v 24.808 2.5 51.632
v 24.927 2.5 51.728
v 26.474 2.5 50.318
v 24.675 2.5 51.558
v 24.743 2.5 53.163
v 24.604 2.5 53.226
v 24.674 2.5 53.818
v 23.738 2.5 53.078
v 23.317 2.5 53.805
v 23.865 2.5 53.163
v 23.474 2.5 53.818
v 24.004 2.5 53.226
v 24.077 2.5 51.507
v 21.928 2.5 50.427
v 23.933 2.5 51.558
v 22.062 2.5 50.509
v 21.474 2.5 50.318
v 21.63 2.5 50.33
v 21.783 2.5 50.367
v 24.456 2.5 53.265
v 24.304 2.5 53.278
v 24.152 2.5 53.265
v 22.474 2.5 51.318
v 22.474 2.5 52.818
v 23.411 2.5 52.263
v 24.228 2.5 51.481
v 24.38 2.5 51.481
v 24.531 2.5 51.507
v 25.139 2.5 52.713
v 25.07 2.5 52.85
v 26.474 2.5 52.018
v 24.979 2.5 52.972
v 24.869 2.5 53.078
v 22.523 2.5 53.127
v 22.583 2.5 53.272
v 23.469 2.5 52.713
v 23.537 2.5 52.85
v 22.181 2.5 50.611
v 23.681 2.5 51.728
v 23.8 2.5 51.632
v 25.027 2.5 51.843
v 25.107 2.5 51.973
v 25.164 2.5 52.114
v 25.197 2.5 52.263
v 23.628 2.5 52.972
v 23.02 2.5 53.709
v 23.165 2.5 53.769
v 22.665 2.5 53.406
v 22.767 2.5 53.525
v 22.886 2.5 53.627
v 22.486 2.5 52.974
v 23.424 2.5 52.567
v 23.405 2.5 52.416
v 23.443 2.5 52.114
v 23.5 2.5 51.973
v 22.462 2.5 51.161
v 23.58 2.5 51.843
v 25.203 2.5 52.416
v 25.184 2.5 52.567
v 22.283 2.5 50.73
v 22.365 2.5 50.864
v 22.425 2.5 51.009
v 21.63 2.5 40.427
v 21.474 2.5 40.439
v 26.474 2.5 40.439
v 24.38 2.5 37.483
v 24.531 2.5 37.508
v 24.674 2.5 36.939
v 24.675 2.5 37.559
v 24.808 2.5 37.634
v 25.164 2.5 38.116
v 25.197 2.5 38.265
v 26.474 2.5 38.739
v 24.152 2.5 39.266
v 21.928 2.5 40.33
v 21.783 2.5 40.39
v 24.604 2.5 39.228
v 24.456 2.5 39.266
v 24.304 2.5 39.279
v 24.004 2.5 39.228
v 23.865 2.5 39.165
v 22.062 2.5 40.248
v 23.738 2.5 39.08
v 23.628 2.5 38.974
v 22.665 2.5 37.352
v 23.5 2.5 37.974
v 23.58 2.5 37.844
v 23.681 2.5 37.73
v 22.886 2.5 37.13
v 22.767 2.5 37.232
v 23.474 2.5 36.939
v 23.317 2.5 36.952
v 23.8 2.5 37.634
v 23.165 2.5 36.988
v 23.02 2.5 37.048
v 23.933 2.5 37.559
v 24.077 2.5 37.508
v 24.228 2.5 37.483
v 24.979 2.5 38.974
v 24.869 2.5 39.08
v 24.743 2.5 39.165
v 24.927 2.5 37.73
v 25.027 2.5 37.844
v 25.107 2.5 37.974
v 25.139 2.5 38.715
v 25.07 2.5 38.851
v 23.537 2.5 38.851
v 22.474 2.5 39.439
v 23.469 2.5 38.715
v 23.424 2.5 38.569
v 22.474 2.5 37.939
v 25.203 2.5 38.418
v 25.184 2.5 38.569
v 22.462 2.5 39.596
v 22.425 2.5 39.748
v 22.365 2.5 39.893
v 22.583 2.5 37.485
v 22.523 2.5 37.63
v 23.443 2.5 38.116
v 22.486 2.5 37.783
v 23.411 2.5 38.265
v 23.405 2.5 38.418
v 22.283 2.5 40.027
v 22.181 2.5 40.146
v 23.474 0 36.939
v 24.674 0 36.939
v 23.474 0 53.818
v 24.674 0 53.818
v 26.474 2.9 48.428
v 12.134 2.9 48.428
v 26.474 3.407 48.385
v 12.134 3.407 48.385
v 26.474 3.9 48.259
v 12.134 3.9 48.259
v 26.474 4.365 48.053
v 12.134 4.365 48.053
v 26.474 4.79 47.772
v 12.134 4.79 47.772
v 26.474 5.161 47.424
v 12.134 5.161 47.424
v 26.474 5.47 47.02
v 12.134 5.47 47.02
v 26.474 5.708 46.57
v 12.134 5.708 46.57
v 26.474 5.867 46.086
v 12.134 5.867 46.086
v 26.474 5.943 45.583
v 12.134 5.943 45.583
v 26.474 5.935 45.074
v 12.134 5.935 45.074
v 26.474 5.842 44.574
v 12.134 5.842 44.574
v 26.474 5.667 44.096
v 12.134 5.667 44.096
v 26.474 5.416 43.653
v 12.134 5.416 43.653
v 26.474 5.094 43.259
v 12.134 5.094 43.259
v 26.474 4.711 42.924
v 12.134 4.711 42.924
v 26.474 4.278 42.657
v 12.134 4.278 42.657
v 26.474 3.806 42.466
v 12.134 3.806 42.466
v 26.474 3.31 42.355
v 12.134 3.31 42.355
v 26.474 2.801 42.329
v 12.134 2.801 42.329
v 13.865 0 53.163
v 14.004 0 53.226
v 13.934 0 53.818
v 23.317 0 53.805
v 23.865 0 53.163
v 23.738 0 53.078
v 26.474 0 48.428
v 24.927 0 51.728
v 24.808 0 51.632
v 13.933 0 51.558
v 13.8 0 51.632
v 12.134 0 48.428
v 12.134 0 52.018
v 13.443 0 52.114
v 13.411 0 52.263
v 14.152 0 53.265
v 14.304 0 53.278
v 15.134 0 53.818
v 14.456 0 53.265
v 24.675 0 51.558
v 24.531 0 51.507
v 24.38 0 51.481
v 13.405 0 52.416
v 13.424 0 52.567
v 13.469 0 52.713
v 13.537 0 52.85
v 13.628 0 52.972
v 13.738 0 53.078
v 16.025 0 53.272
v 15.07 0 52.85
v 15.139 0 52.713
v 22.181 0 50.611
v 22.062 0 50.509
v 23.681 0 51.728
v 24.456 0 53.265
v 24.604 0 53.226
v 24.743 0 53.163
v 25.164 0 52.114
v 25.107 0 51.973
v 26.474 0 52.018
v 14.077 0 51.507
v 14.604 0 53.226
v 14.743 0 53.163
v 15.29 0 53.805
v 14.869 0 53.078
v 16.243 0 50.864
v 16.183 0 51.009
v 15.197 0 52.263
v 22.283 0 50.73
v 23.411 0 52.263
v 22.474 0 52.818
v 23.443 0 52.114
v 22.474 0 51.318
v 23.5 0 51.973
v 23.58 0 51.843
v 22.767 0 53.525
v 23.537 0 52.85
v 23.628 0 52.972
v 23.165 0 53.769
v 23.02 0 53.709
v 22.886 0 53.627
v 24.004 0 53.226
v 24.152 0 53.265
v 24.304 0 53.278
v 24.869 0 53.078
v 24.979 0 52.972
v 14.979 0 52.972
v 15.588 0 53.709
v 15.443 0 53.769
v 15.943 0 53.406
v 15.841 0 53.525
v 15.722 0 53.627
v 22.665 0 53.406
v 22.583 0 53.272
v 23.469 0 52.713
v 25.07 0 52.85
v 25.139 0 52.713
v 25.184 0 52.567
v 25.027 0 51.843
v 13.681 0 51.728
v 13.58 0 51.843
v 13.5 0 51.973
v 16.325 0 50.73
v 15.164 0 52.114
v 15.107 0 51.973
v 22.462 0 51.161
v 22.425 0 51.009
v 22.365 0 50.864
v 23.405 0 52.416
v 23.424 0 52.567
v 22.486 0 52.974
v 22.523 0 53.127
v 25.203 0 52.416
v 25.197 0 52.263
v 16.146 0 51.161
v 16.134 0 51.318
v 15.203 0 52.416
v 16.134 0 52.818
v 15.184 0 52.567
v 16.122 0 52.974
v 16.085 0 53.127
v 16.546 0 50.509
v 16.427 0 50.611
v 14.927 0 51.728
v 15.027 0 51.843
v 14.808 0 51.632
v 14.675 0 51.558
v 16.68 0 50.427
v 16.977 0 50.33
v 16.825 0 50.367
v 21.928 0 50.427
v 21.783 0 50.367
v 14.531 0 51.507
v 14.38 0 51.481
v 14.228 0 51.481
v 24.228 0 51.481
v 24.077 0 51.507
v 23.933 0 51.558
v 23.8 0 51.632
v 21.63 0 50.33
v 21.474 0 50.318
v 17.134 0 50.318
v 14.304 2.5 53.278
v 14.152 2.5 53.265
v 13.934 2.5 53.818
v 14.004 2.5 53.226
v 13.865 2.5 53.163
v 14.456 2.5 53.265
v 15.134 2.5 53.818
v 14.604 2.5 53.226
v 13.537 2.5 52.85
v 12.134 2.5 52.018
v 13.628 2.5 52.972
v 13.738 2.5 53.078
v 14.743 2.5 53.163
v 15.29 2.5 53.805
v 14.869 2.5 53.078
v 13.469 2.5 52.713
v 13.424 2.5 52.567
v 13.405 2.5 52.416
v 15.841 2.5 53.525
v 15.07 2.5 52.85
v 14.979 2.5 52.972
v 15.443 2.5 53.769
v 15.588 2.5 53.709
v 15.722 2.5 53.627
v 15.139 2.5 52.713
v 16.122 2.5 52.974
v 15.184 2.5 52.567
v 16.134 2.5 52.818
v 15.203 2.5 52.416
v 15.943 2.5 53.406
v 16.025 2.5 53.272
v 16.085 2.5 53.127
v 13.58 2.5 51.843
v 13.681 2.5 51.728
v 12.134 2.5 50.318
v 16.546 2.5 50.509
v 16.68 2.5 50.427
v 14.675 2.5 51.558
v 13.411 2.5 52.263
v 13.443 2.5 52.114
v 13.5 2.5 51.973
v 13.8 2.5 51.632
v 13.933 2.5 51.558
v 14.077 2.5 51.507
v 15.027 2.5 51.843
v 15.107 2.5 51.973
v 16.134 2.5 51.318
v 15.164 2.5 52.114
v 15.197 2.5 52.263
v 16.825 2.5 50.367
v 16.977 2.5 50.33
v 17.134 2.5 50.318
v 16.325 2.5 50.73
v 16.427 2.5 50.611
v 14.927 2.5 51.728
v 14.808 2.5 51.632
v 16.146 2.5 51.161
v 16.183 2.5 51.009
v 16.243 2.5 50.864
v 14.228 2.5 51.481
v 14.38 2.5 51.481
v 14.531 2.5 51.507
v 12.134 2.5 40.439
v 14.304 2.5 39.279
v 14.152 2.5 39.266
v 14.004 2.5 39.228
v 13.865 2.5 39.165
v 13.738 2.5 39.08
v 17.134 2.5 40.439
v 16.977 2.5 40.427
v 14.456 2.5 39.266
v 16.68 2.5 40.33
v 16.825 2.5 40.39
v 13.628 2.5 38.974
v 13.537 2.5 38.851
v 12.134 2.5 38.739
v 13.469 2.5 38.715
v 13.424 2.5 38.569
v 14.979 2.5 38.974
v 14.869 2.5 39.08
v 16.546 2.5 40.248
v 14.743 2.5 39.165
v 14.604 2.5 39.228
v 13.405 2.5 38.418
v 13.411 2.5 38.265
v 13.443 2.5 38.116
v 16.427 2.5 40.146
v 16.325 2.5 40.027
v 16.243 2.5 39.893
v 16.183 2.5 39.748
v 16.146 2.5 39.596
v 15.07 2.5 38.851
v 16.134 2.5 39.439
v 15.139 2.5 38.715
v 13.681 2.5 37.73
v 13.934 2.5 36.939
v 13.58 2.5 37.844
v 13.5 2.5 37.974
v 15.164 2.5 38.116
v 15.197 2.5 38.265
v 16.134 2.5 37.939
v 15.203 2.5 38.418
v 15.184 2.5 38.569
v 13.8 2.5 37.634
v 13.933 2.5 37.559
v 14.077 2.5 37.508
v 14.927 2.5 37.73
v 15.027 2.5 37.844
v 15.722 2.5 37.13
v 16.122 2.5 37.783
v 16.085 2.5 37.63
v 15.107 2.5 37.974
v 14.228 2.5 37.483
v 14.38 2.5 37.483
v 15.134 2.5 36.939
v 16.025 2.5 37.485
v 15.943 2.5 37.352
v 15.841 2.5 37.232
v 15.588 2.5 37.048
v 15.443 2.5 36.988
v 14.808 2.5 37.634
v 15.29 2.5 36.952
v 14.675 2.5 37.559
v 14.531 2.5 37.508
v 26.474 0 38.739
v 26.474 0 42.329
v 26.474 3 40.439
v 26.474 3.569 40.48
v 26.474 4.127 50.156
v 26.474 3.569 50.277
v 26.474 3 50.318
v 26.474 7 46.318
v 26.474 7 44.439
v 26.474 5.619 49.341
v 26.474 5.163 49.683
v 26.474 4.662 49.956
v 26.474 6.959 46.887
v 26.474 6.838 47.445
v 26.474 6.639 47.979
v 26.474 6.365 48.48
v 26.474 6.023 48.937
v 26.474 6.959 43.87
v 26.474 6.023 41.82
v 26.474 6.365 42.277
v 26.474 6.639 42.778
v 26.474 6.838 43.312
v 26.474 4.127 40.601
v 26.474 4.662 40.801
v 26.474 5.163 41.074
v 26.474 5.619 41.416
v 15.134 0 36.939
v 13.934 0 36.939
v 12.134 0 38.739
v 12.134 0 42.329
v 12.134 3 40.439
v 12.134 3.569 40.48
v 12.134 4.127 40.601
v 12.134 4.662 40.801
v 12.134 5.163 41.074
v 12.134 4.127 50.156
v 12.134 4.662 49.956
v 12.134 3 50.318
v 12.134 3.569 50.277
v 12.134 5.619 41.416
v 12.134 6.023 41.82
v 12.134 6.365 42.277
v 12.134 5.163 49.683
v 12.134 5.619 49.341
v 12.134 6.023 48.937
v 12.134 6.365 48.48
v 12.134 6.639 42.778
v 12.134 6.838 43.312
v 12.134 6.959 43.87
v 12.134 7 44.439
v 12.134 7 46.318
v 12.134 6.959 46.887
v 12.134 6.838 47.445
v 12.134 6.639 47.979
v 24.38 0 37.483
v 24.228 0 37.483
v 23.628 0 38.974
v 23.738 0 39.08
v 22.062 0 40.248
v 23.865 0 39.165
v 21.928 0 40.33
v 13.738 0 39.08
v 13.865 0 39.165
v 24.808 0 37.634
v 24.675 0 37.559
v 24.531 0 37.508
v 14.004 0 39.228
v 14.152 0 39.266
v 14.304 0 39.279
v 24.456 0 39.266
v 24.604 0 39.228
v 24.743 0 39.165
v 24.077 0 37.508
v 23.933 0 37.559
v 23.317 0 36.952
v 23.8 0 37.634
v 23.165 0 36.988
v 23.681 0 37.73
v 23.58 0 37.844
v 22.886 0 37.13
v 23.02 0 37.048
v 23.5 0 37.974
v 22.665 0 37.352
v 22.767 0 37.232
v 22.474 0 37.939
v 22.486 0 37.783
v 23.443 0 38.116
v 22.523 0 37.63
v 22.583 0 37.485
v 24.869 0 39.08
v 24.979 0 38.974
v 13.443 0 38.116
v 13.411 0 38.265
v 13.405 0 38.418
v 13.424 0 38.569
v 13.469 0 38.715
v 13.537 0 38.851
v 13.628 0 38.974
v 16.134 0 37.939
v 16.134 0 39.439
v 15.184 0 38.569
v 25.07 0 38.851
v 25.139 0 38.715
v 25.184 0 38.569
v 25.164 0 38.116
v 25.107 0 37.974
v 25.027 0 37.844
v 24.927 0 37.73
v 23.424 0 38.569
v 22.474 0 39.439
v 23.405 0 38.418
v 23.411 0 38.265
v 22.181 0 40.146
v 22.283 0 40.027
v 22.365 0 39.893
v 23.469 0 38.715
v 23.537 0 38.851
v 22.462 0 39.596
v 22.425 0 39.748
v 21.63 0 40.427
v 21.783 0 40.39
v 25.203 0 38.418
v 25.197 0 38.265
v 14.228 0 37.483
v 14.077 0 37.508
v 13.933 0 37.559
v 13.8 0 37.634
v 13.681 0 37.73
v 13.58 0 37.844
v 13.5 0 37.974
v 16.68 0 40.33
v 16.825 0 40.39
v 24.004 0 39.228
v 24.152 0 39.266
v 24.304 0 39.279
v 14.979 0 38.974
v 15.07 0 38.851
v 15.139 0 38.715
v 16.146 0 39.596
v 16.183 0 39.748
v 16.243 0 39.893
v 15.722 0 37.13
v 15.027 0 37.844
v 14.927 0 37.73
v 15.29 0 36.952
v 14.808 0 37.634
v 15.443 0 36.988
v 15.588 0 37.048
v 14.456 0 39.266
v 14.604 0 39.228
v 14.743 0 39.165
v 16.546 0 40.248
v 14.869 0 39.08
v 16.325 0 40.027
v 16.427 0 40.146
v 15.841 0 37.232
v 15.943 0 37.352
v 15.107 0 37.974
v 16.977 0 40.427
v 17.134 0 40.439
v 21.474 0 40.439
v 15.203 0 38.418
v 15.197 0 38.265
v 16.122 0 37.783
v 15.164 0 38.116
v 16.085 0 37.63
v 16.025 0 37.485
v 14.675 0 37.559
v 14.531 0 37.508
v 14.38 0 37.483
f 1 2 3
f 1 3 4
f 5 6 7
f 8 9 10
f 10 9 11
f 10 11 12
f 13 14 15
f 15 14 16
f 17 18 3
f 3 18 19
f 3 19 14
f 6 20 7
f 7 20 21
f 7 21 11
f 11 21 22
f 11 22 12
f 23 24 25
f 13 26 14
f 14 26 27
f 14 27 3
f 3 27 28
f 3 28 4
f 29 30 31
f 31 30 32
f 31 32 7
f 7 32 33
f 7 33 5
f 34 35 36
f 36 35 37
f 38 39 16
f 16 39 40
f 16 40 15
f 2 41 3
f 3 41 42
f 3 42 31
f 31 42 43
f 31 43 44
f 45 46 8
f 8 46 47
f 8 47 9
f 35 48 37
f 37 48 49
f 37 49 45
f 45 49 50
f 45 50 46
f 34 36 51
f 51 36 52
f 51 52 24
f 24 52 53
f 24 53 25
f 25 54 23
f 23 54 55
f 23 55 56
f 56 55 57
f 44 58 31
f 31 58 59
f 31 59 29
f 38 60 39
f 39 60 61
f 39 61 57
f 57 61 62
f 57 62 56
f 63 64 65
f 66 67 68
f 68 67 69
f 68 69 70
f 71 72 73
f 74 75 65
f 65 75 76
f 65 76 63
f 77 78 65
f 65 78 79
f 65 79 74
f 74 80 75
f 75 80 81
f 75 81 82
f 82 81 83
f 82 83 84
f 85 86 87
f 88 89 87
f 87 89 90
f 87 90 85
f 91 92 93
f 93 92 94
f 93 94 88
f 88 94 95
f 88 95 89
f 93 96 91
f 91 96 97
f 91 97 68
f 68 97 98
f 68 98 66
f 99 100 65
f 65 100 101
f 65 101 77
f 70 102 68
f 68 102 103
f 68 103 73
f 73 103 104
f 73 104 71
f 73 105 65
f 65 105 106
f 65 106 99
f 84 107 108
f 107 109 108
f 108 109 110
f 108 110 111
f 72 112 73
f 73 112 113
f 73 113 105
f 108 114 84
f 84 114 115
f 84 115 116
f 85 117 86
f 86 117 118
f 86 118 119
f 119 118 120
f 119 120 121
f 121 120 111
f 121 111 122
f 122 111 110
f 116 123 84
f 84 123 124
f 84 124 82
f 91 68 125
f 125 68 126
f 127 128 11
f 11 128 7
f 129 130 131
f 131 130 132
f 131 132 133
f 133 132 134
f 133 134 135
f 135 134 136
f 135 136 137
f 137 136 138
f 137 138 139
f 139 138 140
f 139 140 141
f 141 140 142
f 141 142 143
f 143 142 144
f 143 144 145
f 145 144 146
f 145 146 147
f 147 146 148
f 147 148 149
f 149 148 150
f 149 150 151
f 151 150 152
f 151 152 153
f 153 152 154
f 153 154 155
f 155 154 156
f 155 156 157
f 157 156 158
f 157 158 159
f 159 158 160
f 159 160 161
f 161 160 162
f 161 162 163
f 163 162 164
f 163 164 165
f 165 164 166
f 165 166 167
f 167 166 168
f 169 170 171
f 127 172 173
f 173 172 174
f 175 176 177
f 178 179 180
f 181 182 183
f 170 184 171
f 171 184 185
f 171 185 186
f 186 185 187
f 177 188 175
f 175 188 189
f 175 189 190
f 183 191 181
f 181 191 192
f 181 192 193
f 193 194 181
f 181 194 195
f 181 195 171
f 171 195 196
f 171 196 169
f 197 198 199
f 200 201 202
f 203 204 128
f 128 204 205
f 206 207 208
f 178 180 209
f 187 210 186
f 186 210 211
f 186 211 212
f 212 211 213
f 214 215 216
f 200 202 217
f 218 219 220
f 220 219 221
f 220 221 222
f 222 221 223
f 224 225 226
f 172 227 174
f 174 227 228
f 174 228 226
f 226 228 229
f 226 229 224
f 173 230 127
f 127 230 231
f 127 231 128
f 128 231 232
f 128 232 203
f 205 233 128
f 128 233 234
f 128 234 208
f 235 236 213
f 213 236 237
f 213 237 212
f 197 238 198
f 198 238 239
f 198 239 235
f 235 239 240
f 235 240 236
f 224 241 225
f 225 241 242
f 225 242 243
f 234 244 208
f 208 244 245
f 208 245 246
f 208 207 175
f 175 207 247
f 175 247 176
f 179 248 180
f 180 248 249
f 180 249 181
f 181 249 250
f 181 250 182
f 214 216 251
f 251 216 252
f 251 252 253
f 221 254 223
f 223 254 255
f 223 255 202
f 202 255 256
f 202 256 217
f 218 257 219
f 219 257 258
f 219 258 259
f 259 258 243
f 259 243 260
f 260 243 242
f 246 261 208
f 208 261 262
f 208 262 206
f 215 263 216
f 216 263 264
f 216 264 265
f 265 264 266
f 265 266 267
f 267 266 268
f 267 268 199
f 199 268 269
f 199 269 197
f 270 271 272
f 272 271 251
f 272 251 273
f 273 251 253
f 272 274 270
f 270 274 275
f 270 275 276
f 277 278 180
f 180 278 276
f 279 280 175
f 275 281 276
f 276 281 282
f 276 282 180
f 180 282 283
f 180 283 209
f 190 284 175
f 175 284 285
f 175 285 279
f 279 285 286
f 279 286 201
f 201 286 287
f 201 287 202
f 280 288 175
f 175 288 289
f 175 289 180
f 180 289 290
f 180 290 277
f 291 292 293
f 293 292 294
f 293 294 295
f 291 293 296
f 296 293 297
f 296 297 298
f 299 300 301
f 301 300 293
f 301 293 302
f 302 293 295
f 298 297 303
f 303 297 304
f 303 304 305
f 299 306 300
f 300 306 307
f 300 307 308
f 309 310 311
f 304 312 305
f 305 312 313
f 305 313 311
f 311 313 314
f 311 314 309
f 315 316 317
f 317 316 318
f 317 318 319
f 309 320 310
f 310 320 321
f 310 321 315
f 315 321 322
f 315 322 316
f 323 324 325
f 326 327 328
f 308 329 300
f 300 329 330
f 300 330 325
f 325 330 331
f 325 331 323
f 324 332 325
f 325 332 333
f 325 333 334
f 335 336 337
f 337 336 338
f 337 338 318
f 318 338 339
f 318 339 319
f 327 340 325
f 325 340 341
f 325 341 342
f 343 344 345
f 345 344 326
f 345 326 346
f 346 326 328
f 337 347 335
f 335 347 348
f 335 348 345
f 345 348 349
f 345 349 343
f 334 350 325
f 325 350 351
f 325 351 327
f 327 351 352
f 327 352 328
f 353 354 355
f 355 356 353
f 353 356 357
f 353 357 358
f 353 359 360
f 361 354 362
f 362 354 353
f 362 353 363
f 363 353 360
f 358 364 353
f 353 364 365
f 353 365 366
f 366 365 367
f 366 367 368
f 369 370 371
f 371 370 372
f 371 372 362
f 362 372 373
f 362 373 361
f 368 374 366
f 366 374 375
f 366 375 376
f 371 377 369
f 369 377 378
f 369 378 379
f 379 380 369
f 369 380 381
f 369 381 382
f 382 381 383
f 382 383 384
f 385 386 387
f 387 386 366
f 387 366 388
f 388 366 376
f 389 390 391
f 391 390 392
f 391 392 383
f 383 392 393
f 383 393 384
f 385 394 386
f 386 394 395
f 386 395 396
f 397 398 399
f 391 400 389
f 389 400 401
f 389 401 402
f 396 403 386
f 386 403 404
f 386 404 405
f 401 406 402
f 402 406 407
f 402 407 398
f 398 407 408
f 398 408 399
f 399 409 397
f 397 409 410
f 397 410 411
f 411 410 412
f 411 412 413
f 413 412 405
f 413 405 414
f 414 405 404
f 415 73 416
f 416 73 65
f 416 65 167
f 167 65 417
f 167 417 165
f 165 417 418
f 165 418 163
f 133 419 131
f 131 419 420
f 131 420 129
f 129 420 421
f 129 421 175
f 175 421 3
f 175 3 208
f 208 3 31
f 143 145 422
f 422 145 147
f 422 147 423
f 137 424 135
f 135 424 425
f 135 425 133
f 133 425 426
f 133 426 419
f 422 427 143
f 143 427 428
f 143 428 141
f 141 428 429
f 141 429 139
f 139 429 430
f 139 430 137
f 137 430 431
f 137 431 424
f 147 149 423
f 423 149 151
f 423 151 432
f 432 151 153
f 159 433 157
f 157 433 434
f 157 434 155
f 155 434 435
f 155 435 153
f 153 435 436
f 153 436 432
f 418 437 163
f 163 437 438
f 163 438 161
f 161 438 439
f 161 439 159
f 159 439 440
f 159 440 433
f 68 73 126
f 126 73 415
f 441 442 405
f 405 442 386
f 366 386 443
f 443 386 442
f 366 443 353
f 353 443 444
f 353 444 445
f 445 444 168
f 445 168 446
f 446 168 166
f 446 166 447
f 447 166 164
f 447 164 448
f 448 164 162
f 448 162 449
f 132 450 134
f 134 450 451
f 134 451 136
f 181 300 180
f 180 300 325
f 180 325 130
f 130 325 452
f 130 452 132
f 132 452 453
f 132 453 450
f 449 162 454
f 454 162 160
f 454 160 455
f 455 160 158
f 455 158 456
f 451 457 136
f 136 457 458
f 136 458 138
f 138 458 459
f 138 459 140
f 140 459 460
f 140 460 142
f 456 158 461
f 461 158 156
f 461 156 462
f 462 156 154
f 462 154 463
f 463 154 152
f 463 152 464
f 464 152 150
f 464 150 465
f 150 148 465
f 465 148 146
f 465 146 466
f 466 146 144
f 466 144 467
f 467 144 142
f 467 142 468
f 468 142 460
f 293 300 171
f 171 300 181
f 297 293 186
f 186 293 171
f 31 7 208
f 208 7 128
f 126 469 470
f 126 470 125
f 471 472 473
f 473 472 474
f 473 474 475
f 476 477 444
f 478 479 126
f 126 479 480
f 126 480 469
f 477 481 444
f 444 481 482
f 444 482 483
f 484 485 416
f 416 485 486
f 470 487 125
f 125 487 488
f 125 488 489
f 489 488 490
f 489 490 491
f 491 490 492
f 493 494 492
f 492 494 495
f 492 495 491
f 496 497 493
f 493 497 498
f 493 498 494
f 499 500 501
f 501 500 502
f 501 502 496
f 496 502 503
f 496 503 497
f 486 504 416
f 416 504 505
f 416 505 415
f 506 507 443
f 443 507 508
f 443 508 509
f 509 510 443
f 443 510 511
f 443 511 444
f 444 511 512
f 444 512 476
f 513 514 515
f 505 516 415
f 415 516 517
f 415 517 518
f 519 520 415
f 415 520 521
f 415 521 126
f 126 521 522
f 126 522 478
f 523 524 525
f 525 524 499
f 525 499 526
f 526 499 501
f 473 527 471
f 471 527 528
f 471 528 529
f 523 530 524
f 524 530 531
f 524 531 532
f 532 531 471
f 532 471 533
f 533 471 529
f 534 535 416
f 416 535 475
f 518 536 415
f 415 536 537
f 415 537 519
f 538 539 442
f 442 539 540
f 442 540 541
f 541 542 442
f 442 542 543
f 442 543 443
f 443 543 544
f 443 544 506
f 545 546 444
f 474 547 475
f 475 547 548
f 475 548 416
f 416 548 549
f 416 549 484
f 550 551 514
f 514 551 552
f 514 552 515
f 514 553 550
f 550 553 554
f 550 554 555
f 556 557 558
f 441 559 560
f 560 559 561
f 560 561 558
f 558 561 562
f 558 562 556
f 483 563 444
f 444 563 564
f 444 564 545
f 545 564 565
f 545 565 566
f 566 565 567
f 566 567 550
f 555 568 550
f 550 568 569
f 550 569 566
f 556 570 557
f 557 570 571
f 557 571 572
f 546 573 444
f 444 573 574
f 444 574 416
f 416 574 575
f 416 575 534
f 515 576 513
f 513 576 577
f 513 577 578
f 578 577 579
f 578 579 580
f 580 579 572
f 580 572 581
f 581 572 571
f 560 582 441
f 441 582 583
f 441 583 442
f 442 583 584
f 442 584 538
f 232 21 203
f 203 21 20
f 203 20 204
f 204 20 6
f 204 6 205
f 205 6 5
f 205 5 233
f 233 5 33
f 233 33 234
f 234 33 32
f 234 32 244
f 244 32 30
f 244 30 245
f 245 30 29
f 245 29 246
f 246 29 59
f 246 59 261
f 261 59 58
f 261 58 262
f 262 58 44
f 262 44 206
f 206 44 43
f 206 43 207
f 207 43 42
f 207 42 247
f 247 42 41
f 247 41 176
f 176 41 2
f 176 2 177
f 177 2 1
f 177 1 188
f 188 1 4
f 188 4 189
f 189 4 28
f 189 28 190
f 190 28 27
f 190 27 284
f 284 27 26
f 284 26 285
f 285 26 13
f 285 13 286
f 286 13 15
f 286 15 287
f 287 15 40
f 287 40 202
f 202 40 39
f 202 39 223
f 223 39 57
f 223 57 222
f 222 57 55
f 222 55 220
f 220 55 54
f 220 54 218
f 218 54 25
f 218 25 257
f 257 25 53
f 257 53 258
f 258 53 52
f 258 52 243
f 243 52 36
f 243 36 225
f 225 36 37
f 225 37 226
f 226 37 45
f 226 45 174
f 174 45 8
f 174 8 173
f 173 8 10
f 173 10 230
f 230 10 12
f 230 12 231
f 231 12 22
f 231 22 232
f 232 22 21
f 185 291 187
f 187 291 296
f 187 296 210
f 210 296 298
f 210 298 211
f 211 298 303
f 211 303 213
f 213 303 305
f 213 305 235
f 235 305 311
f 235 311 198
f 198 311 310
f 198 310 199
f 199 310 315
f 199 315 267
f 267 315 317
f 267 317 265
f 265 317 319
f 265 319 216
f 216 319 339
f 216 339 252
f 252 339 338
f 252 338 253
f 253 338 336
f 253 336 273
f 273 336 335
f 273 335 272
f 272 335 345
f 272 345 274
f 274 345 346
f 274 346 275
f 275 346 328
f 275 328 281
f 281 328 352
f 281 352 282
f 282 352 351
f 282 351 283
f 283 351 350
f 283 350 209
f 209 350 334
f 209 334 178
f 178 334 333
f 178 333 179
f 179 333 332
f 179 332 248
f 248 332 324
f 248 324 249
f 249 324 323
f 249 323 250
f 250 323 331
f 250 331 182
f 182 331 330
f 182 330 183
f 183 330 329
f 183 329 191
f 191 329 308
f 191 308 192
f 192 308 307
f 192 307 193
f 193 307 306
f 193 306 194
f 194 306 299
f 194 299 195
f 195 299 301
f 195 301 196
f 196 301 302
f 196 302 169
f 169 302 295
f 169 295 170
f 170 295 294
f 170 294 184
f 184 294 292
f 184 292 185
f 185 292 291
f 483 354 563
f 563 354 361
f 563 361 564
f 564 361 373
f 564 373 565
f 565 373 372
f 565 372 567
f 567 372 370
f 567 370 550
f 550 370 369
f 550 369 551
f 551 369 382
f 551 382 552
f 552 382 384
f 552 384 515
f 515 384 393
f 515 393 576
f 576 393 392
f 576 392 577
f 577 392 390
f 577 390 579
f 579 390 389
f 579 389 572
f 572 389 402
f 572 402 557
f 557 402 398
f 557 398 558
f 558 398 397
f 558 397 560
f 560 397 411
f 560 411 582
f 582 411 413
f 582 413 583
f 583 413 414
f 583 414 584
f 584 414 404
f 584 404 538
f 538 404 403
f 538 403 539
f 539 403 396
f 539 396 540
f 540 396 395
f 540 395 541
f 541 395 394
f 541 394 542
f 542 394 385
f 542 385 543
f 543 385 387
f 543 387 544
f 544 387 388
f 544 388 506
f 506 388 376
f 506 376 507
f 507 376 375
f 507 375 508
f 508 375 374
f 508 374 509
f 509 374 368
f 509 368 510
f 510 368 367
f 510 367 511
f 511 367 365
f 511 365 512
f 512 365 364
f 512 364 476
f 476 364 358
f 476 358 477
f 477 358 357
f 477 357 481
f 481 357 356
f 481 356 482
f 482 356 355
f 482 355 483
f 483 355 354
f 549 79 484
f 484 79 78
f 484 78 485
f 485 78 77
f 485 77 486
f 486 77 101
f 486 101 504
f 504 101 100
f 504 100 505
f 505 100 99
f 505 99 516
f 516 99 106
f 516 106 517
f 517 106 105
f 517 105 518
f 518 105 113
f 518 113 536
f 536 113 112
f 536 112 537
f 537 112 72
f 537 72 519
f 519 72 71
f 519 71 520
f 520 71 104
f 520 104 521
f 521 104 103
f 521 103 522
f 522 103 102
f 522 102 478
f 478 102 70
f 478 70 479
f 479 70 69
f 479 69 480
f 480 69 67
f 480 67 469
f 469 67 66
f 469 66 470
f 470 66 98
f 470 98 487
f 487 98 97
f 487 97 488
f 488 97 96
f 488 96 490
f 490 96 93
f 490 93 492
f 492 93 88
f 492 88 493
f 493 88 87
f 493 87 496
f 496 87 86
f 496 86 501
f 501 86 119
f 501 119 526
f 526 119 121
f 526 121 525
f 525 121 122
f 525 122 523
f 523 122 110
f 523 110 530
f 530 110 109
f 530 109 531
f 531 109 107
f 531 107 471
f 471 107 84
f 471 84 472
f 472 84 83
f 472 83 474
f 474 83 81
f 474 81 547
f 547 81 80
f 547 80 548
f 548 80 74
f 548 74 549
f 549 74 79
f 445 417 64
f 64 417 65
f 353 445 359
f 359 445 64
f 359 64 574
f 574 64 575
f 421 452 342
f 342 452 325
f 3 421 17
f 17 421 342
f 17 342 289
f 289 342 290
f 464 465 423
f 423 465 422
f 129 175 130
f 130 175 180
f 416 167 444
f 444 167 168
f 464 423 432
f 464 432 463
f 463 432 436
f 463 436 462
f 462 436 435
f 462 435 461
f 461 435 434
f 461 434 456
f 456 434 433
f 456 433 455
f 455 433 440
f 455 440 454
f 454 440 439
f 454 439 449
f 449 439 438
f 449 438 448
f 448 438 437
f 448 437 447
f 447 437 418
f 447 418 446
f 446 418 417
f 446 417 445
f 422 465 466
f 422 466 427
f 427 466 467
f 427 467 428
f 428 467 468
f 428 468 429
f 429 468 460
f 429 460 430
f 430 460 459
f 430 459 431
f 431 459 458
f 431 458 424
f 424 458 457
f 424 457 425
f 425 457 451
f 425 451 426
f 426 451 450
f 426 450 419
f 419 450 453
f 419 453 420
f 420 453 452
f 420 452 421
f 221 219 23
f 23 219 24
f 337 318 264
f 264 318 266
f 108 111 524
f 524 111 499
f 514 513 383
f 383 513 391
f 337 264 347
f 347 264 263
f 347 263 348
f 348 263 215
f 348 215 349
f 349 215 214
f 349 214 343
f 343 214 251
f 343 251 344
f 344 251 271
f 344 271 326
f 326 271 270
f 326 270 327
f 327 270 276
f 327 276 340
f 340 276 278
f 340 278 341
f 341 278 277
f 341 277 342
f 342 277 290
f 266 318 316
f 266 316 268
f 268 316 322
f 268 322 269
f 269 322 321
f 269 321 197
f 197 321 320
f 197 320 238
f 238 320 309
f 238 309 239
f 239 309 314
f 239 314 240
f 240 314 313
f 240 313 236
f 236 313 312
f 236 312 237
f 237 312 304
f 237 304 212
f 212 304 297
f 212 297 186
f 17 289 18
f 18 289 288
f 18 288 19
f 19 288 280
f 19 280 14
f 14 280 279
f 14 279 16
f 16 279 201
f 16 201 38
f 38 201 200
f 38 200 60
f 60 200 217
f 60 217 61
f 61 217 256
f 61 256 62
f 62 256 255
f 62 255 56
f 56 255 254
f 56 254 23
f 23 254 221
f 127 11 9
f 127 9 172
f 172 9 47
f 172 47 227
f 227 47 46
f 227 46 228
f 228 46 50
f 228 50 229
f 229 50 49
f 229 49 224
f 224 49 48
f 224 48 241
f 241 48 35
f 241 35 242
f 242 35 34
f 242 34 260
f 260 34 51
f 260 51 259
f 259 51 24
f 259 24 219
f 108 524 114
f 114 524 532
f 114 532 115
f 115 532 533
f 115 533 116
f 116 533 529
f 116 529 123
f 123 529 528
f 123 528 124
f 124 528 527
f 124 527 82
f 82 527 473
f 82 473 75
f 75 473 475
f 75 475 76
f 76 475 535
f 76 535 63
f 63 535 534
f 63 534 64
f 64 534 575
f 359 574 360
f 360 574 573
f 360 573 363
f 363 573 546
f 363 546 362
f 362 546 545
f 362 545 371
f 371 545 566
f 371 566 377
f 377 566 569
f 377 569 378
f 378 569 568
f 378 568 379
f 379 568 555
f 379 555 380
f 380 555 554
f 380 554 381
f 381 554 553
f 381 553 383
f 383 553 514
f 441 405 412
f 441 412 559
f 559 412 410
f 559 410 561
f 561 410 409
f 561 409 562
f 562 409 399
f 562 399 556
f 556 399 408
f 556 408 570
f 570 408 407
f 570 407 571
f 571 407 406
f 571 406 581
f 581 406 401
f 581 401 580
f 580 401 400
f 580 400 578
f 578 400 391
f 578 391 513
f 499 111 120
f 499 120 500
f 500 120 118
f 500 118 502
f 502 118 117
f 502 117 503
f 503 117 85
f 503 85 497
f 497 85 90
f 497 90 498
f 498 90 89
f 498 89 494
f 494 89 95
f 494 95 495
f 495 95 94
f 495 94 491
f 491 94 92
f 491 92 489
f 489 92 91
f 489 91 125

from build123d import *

# Parameters (mm, degrees)
BOSS_EXTRUDE1_DEPTH = 2.5
SKETCH2_R           = 0.9
CUT_EXTRUDE1_DEPTH  = 2.5
SKETCH3_W           = 14.34
SKETCH3_H           = 9.878404361
BOSS_EXTRUDE2_DEPTH = 4.5
SKETCH4_R           = 3.05
CUT_EXTRUDE2_DEPTH  = 57.133646482
SKETCH5_W           = 6.098404361
SKETCH5_H           = 2.9
CUT_EXTRUDE3_DEPTH  = 57.133646482
FILLET1_R           = 4
SKETCH7_W           = 6.34
SKETCH7_H           = 3.5
CUT_EXTRUDE5_DEPTH  = 61.145372561
FILLET2_R           = 1


with BuildPart() as part:
    # Sketch1 → Boss-Extrude1 (new body)
    with BuildSketch(Plane(origin=(0, 0, 0), x_dir=(1, 0, 0), z_dir=(0, 1, 0))):
        Polygon((26.473858297, -52.017754202), (24.673858297, -53.817754202), (13.933858297, -53.817754202), (12.133858297, -52.017754202), (12.133858297, -38.739349841), (13.933858297, -36.939349841), (24.673858297, -36.939349841), (26.473858297, -38.739349841), align=None)
    extrude(amount=BOSS_EXTRUDE1_DEPTH)

    # Sketch2 → Cut-Extrude1 (cut)
    with BuildSketch(Plane(origin=(0, 2.5, 0), x_dir=(1, 0, 0), z_dir=(0, 1, 0))):
        with Locations(Location((24.303858297, -52.377754202, 0), (0, 0, 270))):
            Circle(SKETCH2_R)
        with Locations(Location((14.303858297, -52.377754202, 0), (0, 0, 270))):
            Circle(SKETCH2_R)
        with Locations(Location((14.303858297, -38.379349841, 0), (0, 0, 270))):
            Circle(SKETCH2_R)
        with Locations(Location((24.303858297, -38.379349841, 0), (0, 0, 270))):
            Circle(SKETCH2_R)
    extrude(amount=-CUT_EXTRUDE1_DEPTH, mode=Mode.SUBTRACT)

    # Sketch3 → Boss-Extrude2 (add)
    with BuildSketch(Plane(origin=(0, 2.5, 0), x_dir=(1, 0, 0), z_dir=(0, 1, 0))):
        with Locations((19.303858297, -45.378552021)):
            Rectangle(SKETCH3_W, SKETCH3_H)
    extrude(amount=BOSS_EXTRUDE2_DEPTH)

    # Sketch4 → Cut-Extrude2 (cut, through all)
    with BuildSketch(Plane.ZY.offset(-12.133858297)):
        with Locations((45.377754202, 2.9)):
            Circle(SKETCH4_R)
    extrude(amount=-CUT_EXTRUDE2_DEPTH, mode=Mode.SUBTRACT)

    # Sketch5 → Cut-Extrude3 (cut, through all)
    with BuildSketch(Plane.ZY.offset(-12.133858297)):
        with Locations((45.378552021, 1.45)):
            Rectangle(SKETCH5_W, SKETCH5_H)
    extrude(amount=-CUT_EXTRUDE3_DEPTH, mode=Mode.SUBTRACT)

    # Fillet1
    fillet1_edges = [part.edges().sort_by_distance(p)[0] for p in [
        (19.303858297, 7, 40.439349841),
        (19.303858297, 7, 50.317754202),
    ]]
    fillet(fillet1_edges, radius=FILLET1_R)

    # Sketch7 → Cut-Extrude5 (cut, through all)
    with BuildSketch(Plane(origin=(0, 2.5, 0), x_dir=(1, 0, 0), z_dir=(0, 1, 0))):
        with Locations((19.303858297, -52.067754202)):
            Rectangle(SKETCH7_W, SKETCH7_H)
        with Locations((19.303858297, -38.689349841)):
            Rectangle(SKETCH7_W, SKETCH7_H)
    extrude(amount=-CUT_EXTRUDE5_DEPTH, mode=Mode.SUBTRACT)

    # Fillet2
    fillet2_edges = [part.edges().sort_by_distance(p)[0] for p in [
        (22.473858297, 1.25, 50.317754202),
        (22.473858297, 1.25, 53.817754202),
        (16.133858297, 1.25, 53.817754202),
        (16.133858297, 1.25, 50.317754202),
        (22.473858297, 1.25, 36.939349841),
        (22.473858297, 1.25, 40.439349841),
        (16.133858297, 1.25, 40.439349841),
        (16.133858297, 1.25, 36.939349841),
    ]]
    fillet(fillet2_edges, radius=FILLET2_R)


solid = part.part
